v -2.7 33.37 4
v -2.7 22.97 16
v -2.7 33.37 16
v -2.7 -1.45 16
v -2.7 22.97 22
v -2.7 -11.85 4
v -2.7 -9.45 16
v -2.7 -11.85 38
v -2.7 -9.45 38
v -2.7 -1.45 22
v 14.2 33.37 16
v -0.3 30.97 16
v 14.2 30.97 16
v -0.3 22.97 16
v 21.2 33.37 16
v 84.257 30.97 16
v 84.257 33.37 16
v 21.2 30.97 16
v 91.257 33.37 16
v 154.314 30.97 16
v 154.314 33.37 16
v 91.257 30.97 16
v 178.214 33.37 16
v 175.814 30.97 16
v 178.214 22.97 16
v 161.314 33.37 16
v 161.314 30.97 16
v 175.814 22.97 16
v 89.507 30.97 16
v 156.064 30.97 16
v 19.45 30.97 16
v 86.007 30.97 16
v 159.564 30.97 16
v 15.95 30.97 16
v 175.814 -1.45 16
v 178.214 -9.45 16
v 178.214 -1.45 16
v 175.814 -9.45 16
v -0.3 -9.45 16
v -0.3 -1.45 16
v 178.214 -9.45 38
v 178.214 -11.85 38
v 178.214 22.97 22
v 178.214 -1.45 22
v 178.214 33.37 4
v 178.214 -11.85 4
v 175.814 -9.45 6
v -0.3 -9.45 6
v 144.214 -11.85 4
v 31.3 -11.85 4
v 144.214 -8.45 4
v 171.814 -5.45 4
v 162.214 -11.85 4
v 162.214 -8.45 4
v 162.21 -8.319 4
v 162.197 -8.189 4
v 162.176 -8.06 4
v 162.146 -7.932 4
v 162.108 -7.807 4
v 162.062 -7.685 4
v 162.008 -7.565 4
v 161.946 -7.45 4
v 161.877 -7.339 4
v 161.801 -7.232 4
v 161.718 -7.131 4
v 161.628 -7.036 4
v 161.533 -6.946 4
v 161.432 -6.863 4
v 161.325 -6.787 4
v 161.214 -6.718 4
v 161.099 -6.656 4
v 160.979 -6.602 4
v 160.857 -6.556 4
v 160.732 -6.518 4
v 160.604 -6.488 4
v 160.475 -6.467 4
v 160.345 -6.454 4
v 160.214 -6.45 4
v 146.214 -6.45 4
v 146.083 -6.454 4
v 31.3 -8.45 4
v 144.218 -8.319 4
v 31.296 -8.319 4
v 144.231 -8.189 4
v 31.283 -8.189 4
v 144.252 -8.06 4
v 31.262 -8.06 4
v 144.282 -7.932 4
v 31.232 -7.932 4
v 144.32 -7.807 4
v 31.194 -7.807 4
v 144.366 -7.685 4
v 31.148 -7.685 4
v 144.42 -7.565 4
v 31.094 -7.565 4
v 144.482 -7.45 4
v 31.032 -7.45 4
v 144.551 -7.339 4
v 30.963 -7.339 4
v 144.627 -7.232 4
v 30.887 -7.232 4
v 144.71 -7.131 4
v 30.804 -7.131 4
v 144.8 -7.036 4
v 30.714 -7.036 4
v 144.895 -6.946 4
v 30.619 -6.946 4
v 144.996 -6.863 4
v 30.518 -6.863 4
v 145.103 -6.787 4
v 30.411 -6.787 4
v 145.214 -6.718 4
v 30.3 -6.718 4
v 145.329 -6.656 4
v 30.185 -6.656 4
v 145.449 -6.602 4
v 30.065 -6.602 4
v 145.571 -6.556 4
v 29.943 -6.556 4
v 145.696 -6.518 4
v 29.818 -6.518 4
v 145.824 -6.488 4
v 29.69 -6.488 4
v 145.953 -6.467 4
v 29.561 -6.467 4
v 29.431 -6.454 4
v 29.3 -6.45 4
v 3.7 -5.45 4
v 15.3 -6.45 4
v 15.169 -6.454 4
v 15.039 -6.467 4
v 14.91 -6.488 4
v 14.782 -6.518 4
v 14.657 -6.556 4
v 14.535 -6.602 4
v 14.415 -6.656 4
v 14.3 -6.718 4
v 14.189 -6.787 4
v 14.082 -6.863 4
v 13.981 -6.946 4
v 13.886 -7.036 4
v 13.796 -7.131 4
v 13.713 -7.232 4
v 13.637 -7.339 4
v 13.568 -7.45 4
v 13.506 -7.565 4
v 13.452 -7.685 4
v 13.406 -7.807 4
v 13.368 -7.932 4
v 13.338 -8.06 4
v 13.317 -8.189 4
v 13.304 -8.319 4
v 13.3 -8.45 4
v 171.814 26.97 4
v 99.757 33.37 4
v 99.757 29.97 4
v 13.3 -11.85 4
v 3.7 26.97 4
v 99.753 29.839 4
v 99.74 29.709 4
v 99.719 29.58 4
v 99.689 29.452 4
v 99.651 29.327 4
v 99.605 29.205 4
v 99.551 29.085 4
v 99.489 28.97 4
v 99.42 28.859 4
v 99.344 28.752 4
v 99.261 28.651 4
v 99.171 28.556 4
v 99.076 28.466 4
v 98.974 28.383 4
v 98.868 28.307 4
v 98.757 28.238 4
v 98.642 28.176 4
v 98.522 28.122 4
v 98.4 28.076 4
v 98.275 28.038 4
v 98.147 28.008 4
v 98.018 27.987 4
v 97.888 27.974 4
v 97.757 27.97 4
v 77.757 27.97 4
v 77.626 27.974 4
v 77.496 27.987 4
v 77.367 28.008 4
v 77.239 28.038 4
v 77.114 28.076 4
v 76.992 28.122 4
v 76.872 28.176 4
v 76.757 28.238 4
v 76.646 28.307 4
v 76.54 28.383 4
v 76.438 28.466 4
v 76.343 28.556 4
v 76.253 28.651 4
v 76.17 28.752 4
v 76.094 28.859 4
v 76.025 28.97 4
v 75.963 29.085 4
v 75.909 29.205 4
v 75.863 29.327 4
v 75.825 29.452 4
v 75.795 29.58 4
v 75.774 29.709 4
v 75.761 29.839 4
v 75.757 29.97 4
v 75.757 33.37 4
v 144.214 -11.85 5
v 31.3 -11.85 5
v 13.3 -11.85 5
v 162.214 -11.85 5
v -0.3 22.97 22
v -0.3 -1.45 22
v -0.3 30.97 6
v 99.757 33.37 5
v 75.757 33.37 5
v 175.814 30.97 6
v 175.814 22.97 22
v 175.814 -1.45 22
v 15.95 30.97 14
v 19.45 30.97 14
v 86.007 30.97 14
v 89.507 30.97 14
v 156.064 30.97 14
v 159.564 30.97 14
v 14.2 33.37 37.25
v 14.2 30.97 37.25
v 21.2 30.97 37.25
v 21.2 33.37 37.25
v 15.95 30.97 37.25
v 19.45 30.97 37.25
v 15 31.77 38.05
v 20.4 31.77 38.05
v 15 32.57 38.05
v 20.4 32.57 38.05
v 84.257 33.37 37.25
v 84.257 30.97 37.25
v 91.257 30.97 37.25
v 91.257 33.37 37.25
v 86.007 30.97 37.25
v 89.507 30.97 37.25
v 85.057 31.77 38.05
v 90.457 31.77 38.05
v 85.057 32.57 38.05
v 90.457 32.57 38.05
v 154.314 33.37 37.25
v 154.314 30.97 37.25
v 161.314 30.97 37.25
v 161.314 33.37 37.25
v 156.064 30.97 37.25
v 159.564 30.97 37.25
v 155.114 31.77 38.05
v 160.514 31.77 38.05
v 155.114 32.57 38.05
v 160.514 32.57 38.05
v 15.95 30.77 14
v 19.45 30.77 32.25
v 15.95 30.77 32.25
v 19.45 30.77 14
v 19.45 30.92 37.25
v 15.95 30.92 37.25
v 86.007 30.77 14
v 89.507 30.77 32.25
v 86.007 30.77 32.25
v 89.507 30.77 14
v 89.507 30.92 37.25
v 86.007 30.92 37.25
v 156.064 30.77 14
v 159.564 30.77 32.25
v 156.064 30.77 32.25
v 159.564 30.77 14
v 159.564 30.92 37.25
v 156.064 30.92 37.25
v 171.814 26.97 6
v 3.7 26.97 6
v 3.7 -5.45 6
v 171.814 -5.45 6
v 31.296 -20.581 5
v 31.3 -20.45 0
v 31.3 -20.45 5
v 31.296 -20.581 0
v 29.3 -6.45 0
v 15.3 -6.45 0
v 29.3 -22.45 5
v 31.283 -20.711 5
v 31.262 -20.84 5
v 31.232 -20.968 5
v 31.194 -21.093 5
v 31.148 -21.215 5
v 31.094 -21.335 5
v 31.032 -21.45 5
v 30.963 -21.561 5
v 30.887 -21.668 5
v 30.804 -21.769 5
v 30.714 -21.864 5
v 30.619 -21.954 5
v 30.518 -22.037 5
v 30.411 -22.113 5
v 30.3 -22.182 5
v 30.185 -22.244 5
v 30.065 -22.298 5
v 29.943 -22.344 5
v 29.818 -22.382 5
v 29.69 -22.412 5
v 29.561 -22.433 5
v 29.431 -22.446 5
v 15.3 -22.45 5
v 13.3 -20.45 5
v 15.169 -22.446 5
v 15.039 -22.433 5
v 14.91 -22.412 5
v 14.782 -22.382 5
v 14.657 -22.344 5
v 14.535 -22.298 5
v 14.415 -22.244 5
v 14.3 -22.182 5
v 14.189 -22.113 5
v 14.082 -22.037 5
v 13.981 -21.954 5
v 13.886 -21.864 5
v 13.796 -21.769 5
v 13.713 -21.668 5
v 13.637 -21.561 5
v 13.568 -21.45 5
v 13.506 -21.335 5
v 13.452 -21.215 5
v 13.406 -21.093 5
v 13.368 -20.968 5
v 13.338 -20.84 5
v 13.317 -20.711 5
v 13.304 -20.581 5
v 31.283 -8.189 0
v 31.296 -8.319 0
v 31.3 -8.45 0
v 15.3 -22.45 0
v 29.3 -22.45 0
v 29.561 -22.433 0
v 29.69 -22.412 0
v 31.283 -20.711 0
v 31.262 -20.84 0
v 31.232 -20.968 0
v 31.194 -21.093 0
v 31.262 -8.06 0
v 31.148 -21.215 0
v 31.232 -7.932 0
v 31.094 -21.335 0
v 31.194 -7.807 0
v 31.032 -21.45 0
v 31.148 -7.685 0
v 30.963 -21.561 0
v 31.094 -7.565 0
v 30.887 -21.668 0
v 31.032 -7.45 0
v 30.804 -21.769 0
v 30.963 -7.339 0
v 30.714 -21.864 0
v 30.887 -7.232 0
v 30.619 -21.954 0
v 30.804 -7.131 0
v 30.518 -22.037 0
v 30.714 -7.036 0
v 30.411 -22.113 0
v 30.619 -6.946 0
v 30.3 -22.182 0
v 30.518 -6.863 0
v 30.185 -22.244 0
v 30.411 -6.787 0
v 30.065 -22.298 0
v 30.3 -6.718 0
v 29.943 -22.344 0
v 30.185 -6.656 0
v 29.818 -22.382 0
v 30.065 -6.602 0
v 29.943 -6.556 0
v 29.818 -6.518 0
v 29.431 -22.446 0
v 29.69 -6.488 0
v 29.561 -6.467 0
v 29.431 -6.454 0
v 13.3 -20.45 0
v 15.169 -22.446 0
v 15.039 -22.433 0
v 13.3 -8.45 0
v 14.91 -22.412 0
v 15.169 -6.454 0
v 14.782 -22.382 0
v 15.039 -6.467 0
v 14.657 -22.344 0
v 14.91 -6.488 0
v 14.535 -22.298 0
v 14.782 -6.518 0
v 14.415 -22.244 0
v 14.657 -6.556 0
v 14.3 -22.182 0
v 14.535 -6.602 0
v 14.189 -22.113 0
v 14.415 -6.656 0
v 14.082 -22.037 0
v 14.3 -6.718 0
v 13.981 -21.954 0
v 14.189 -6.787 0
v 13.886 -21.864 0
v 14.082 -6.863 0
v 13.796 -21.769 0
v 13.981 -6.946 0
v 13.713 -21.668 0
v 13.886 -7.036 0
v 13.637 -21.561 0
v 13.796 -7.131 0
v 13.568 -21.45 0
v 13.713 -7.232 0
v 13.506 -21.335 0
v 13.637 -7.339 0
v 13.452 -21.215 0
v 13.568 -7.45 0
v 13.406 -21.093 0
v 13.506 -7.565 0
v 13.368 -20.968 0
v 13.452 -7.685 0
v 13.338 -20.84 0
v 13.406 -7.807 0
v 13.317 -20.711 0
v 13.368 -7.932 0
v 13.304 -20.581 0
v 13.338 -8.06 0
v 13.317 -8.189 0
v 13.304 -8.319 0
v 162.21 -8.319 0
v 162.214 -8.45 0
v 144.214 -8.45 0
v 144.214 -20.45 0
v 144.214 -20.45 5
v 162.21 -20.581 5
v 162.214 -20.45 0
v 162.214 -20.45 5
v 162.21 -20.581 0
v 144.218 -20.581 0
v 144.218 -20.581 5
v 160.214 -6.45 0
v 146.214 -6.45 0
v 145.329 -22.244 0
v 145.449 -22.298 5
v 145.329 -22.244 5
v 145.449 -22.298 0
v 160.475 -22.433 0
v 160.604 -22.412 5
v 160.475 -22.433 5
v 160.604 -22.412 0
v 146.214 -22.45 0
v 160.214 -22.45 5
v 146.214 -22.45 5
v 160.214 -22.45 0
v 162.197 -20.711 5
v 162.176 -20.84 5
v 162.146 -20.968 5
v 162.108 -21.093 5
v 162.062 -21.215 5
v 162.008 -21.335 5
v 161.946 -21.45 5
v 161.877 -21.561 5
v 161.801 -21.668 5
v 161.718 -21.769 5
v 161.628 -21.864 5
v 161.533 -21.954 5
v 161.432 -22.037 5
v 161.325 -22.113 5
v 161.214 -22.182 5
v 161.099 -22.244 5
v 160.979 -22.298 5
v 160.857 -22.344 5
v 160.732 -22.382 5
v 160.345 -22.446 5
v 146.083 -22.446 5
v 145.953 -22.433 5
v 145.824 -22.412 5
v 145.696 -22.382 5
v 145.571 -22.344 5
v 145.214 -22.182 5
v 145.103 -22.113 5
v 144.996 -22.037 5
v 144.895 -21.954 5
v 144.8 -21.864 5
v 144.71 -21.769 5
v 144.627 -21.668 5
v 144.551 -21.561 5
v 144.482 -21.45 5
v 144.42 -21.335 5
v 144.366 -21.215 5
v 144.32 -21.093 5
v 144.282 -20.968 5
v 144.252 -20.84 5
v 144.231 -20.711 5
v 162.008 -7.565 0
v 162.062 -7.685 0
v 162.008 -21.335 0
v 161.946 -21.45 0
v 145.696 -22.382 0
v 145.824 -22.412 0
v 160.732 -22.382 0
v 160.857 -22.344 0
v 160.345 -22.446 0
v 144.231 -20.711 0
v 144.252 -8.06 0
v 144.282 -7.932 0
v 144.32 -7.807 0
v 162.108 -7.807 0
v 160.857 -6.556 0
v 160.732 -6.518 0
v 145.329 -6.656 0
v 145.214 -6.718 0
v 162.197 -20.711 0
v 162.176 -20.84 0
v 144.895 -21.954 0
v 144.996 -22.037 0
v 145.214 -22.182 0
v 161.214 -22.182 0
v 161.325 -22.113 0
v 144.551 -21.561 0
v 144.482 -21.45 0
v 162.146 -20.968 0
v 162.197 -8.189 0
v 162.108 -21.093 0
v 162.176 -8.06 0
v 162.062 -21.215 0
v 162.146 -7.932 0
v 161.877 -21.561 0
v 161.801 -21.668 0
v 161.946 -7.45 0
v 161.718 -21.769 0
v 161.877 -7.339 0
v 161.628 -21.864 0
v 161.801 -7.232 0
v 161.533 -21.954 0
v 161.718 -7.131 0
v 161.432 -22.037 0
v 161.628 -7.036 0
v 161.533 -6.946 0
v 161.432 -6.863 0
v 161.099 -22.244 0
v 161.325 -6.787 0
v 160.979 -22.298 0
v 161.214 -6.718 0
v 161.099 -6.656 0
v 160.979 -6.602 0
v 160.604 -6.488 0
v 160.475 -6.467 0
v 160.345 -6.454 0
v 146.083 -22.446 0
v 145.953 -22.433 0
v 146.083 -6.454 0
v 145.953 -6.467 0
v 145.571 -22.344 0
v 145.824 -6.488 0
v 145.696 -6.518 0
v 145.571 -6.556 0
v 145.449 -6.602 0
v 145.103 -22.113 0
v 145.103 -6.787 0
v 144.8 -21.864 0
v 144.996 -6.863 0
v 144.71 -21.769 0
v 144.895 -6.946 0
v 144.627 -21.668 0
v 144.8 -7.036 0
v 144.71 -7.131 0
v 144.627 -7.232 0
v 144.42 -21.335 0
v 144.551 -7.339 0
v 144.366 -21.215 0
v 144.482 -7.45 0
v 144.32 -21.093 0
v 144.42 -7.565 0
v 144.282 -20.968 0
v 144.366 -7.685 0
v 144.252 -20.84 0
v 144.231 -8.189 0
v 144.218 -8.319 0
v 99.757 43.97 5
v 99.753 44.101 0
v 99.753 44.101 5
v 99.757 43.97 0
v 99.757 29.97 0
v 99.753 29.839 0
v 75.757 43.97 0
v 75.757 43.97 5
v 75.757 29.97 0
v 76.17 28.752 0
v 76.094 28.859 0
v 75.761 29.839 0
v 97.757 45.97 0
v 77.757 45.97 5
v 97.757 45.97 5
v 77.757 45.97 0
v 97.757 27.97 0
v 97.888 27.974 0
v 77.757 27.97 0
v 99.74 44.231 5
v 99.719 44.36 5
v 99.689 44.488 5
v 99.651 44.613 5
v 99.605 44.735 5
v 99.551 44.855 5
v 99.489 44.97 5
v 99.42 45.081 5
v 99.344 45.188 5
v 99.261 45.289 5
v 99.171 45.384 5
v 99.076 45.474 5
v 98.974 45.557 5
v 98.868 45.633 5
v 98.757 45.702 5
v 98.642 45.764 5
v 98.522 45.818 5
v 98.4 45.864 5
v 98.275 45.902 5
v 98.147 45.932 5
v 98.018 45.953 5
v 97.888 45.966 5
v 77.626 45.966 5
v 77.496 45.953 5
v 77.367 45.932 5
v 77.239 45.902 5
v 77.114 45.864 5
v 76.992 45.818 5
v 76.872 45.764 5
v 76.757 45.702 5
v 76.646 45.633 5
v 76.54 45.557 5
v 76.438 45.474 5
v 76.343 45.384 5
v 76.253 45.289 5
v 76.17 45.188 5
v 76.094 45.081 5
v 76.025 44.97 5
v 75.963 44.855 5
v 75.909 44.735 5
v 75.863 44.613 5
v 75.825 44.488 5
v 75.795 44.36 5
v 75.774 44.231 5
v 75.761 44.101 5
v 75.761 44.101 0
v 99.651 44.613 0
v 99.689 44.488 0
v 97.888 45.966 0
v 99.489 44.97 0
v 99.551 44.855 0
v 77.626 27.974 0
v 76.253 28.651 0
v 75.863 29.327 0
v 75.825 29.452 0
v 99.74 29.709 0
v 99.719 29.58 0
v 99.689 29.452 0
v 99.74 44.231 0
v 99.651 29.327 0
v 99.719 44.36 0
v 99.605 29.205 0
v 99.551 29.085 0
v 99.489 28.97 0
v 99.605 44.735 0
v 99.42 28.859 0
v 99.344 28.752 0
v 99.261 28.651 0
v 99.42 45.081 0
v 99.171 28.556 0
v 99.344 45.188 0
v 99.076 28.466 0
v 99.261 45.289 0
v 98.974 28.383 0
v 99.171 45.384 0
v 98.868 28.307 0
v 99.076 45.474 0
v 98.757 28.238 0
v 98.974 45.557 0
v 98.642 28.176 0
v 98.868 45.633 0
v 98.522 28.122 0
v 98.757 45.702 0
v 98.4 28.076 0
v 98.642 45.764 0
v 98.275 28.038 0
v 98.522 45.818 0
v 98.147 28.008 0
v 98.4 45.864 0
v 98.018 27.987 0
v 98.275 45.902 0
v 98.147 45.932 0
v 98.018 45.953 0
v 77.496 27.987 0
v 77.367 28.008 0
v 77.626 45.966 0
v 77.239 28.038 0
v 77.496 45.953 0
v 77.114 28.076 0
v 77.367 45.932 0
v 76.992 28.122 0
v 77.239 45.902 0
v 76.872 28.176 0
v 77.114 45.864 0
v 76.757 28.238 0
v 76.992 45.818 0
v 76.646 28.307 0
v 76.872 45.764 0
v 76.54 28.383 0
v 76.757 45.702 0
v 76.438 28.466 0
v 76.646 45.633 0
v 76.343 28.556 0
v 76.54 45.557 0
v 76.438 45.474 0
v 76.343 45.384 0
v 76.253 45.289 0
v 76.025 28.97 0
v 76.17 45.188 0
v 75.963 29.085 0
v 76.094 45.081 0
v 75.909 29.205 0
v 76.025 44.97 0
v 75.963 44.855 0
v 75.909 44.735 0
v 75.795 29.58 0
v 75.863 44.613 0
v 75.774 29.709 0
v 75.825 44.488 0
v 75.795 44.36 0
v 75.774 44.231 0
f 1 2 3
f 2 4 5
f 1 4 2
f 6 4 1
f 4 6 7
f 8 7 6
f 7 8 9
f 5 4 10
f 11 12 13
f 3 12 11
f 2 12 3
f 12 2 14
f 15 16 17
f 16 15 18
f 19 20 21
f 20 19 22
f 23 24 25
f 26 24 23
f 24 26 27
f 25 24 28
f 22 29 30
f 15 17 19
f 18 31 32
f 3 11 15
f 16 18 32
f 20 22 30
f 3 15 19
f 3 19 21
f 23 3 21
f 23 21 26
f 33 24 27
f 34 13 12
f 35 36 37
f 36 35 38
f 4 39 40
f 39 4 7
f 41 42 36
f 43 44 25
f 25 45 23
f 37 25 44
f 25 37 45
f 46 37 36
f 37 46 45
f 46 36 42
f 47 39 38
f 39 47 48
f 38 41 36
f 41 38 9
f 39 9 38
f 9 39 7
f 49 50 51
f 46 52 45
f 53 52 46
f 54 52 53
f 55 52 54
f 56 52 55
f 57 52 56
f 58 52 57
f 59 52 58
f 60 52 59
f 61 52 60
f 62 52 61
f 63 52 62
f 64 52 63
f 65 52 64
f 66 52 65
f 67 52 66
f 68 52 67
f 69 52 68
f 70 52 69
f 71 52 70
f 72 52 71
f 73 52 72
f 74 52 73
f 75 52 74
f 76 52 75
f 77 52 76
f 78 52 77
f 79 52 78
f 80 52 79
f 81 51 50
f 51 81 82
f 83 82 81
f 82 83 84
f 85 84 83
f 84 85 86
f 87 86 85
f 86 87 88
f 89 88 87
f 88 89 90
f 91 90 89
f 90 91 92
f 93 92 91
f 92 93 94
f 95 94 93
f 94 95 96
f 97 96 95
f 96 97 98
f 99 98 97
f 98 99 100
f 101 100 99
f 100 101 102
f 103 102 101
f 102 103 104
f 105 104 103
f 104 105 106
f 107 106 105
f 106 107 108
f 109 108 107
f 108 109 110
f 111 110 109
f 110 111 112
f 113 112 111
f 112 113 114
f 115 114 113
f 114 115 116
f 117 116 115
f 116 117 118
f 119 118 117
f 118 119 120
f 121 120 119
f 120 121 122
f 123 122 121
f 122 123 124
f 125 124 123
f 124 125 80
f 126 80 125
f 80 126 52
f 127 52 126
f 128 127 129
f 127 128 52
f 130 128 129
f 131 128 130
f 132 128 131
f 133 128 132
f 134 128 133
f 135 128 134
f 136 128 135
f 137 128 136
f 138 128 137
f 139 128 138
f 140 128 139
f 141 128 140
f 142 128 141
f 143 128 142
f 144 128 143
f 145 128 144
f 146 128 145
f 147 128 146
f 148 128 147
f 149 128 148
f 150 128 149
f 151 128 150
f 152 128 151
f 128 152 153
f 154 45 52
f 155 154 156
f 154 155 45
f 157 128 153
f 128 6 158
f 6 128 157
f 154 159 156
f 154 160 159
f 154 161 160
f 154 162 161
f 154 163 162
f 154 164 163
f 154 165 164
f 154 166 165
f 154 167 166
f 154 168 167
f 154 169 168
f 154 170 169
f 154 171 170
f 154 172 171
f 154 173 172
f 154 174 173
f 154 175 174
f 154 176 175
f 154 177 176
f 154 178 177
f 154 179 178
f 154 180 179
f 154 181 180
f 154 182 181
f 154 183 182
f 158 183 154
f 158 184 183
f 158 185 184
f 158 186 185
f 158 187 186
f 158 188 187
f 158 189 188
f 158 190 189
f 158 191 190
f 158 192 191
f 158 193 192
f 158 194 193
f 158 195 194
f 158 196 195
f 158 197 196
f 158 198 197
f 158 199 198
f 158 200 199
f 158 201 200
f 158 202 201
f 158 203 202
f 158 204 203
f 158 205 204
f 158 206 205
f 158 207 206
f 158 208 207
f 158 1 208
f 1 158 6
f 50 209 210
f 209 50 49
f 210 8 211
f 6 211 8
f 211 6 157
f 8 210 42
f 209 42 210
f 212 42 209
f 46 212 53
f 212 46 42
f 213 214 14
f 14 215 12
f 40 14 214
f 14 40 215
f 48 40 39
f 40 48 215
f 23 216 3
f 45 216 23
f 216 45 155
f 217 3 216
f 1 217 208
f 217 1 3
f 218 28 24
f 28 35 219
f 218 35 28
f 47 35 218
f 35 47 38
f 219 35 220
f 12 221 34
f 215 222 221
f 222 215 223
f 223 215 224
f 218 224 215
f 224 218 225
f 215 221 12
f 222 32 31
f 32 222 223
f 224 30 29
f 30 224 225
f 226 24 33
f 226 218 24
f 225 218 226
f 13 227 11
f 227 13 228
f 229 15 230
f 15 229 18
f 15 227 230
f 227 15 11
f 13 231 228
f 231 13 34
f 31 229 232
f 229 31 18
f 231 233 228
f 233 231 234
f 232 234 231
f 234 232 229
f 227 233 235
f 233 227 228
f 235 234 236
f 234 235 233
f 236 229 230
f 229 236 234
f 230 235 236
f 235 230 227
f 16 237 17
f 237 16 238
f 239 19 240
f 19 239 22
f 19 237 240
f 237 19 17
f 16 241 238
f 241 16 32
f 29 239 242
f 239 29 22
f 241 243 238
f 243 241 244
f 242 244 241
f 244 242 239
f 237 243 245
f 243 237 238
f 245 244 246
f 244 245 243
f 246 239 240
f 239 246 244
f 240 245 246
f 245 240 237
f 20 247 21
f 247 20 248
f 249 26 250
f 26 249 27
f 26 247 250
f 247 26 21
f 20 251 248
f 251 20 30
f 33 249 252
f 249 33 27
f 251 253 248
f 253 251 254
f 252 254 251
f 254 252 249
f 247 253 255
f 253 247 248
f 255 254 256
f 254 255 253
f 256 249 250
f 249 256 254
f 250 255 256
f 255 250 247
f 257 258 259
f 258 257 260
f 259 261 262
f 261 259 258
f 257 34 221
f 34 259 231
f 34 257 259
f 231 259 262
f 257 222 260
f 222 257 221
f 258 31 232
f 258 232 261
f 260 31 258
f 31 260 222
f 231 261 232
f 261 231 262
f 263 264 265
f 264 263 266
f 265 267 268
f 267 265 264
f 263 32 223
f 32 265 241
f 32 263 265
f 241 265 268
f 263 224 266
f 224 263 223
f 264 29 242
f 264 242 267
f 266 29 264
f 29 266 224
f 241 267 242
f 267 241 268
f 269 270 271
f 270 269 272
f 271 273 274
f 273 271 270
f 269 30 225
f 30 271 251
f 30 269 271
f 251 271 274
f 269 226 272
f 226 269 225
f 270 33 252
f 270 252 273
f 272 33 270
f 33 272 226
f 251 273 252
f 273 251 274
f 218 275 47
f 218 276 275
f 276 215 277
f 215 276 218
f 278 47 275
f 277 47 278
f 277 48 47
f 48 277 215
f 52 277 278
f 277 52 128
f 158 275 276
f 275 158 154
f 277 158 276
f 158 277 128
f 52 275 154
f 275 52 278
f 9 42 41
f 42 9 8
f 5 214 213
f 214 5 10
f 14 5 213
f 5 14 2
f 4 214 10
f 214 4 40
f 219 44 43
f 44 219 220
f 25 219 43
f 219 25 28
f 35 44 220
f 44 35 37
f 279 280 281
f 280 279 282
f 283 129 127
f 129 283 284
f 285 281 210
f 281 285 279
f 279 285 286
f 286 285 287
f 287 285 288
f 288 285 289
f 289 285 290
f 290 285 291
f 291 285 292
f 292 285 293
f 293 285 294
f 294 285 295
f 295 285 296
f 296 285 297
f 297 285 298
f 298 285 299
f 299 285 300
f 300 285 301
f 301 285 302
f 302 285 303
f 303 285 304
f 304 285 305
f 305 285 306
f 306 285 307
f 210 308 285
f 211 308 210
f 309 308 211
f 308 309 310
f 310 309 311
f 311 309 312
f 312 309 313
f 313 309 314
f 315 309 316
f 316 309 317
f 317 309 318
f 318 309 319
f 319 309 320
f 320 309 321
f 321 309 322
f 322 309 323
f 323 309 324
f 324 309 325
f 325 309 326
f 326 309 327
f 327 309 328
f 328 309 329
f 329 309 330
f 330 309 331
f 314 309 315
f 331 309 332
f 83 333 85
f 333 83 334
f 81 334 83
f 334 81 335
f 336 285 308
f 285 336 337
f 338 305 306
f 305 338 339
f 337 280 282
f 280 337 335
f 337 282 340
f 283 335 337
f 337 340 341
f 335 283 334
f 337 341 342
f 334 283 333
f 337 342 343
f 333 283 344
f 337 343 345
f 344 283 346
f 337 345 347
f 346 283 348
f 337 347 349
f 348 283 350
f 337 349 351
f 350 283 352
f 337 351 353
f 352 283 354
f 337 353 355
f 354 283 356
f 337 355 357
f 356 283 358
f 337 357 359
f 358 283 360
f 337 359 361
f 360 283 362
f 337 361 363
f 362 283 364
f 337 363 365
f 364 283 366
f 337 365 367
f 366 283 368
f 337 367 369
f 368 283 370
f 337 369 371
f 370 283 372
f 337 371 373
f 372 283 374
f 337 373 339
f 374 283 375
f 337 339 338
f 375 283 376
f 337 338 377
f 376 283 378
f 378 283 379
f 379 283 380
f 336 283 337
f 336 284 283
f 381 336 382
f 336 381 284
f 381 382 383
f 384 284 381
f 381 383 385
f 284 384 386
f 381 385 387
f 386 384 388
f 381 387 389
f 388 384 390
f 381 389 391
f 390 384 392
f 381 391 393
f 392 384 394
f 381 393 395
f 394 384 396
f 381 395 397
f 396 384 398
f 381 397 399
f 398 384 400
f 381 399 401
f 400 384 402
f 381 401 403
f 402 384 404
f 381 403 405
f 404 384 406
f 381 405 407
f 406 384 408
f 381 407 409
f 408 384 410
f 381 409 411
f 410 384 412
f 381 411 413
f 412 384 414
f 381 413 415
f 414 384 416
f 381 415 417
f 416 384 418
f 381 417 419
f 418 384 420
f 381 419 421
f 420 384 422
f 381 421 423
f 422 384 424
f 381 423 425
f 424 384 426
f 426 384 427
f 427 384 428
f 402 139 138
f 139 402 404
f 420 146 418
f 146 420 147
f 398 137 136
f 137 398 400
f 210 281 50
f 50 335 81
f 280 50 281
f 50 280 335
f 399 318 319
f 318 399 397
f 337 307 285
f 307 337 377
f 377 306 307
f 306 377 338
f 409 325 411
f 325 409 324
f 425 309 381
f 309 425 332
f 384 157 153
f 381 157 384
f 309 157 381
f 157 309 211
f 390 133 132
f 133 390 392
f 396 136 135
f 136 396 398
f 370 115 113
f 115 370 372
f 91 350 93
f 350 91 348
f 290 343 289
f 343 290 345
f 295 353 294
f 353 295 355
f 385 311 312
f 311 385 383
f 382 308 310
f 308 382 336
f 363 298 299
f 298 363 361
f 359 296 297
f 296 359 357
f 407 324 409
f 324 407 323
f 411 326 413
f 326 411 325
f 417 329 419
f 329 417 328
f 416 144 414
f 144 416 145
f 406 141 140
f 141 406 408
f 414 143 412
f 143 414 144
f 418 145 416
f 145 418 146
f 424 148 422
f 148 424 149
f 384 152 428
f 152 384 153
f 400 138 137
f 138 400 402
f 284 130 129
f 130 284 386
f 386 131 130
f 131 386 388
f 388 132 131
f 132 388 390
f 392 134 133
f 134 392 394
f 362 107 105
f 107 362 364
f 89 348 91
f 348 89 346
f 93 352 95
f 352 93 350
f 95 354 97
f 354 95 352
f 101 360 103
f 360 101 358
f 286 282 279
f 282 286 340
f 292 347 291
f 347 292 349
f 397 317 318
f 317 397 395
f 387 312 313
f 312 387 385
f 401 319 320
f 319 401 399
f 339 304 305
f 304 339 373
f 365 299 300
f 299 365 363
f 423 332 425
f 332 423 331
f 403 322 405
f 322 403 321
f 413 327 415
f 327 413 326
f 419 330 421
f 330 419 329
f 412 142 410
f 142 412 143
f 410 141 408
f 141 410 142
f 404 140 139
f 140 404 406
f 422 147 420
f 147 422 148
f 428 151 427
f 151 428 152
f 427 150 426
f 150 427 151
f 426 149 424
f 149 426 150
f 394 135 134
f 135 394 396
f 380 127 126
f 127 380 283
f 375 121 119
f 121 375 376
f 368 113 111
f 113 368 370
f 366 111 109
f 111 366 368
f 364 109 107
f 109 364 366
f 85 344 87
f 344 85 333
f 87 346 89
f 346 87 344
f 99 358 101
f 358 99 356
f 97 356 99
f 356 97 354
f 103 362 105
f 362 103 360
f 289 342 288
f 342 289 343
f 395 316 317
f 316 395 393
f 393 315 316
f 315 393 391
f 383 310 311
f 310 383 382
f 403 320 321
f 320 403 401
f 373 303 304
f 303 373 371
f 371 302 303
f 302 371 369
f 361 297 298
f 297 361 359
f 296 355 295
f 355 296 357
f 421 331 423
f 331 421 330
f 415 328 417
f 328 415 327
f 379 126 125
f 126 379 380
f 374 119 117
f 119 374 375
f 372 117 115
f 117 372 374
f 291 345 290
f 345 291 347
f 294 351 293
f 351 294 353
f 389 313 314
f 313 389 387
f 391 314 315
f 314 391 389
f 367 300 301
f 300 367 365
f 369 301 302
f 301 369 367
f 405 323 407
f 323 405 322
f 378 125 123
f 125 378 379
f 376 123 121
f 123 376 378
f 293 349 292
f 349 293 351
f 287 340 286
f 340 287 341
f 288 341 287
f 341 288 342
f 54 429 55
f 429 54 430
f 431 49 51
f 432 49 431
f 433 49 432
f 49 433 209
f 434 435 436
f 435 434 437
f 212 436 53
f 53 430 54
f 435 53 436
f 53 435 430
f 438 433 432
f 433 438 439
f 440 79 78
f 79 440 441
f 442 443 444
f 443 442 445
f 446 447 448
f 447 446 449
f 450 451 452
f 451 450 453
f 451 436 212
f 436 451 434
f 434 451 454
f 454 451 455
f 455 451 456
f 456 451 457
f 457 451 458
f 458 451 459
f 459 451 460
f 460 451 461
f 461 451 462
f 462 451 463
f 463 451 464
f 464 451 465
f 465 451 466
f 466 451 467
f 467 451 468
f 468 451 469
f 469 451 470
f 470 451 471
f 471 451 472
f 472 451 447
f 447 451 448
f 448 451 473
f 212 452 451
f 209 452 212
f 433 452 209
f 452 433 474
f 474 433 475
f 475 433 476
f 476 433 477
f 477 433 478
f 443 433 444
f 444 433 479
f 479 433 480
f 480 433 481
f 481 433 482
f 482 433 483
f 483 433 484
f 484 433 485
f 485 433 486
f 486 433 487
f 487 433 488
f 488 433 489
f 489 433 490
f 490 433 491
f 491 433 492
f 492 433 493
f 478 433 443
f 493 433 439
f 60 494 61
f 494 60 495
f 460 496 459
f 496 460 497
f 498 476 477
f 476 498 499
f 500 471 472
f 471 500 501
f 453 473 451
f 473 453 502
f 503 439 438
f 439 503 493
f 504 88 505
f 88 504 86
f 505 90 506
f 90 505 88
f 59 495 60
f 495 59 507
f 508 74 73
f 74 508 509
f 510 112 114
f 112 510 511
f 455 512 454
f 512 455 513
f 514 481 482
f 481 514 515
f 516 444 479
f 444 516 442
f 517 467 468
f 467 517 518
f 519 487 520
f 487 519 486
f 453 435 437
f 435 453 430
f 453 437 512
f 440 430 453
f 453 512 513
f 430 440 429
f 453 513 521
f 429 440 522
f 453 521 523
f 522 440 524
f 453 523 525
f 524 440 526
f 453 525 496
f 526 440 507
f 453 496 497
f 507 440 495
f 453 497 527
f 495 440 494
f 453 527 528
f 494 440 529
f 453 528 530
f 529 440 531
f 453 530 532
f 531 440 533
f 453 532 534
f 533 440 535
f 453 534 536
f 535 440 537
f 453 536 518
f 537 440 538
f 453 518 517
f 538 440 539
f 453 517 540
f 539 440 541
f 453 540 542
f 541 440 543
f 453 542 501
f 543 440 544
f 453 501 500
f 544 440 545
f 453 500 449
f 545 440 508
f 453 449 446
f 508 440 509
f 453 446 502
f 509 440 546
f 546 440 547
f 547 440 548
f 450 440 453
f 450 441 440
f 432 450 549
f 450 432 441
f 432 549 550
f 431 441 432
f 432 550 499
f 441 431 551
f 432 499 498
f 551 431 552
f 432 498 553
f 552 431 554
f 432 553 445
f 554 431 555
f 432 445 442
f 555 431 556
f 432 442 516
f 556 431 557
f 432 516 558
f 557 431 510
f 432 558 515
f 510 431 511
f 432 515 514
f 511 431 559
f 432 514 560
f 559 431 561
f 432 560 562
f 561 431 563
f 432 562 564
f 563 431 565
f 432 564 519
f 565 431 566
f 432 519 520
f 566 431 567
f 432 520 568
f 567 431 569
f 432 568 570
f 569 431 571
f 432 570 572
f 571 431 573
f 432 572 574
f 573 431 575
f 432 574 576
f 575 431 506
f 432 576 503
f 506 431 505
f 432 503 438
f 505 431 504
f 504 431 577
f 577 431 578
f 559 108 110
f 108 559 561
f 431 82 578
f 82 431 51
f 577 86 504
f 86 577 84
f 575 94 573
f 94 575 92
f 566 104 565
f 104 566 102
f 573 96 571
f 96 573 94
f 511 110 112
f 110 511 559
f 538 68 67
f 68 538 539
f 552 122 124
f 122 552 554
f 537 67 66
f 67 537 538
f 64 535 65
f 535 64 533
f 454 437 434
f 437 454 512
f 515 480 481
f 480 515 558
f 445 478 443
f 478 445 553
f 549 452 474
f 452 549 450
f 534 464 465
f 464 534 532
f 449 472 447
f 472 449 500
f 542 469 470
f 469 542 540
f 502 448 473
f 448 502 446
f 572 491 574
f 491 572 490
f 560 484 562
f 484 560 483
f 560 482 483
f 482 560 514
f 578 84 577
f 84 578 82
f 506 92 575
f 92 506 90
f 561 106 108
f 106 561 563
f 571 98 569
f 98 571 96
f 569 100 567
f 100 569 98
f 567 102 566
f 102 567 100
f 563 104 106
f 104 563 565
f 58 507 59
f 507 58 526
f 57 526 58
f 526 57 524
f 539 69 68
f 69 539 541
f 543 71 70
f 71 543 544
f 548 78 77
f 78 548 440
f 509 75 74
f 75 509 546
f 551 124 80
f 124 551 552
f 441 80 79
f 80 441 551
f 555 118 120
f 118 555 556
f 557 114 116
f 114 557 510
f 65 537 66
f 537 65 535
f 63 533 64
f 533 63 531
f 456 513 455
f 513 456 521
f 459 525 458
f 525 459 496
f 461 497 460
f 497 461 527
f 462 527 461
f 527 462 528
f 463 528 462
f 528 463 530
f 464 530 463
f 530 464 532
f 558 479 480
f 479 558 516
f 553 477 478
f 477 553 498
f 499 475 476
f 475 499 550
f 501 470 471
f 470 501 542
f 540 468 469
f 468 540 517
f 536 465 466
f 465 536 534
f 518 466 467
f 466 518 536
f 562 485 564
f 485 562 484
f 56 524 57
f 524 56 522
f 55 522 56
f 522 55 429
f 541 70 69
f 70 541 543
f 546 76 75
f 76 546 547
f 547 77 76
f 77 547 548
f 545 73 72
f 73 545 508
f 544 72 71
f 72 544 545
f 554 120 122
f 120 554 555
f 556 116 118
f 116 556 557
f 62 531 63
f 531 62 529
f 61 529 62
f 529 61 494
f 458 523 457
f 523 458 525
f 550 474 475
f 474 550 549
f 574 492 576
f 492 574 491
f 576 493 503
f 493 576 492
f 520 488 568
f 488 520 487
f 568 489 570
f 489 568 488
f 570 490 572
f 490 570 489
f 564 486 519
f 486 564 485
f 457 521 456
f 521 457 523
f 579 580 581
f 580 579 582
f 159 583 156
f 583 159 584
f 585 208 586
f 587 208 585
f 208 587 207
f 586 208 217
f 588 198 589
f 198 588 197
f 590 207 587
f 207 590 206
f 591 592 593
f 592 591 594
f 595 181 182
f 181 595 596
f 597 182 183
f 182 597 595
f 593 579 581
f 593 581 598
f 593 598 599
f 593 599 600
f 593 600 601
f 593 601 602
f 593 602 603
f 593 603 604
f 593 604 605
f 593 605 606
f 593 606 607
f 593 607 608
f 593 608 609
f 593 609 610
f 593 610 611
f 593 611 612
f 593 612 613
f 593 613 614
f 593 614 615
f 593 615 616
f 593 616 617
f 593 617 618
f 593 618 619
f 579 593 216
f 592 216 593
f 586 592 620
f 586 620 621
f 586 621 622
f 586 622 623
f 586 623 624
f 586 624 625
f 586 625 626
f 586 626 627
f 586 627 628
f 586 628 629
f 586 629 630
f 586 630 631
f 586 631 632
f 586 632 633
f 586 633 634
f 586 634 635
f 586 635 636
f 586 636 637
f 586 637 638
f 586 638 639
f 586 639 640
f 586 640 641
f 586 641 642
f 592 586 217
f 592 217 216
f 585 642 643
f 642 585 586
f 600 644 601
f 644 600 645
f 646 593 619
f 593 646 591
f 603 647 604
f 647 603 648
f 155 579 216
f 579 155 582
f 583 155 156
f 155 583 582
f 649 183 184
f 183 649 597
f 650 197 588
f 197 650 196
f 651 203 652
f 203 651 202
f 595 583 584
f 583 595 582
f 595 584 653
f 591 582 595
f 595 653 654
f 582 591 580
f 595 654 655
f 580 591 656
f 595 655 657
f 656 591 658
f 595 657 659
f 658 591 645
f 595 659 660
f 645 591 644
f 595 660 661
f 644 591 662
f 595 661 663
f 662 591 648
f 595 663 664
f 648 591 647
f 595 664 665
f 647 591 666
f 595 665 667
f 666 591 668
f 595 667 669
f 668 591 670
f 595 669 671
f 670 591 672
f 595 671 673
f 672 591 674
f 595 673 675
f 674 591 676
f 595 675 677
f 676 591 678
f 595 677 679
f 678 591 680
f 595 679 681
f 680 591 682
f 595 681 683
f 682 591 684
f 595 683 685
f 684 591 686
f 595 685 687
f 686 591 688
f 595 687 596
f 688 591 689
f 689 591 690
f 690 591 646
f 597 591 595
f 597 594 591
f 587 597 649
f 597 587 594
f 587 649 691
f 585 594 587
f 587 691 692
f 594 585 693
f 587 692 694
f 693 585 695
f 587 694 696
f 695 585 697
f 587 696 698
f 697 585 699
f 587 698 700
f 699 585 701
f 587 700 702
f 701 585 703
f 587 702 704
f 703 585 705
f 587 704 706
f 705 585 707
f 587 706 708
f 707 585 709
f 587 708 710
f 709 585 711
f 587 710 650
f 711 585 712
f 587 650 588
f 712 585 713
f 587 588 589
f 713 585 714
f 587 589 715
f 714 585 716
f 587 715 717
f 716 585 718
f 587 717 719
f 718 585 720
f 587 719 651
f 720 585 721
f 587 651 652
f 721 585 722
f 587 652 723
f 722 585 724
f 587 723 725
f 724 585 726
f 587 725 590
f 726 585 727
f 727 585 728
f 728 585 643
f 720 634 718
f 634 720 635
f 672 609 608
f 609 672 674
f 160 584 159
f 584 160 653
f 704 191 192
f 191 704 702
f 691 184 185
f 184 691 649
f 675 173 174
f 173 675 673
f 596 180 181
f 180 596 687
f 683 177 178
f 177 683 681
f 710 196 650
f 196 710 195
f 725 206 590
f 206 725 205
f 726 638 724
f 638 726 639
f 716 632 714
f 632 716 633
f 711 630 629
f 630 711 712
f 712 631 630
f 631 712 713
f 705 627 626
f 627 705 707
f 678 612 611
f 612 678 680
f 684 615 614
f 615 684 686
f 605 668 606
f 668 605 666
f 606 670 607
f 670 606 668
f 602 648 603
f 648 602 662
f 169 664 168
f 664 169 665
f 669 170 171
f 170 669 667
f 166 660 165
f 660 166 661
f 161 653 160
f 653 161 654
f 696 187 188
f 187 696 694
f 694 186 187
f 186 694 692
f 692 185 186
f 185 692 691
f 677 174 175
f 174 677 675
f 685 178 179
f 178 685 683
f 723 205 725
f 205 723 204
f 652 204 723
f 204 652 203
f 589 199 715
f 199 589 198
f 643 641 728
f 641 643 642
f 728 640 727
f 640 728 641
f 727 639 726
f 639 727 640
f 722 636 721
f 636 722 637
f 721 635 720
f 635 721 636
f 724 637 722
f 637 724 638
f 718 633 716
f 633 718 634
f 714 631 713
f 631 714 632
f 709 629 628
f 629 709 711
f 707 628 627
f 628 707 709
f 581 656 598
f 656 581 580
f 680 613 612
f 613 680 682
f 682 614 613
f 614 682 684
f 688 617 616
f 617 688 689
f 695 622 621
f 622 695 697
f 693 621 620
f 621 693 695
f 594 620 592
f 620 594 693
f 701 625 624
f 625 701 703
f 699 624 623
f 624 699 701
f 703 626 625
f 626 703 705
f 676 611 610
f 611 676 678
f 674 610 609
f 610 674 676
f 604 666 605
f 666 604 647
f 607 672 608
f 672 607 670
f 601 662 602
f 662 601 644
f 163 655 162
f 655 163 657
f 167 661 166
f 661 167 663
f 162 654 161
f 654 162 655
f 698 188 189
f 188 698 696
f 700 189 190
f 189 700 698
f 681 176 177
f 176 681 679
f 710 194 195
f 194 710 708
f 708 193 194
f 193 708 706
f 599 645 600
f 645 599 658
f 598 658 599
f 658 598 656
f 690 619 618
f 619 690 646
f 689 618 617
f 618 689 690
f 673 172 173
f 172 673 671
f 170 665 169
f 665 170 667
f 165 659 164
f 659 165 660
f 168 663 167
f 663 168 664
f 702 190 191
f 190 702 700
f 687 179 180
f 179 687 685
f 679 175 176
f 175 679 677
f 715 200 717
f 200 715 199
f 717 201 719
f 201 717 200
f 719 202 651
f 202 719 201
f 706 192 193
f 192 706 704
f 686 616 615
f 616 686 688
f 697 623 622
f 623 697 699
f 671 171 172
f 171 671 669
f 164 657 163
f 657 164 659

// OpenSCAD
// DOUBLE TAKE FRAMES — CANONICAL FRAME STAND
// DTF_RELEASE: 4.0.0
// Version: 4.0.0
// Based on canonical frame-stand-v3.0.0.scad.
// Status: CANONICAL
//
// Lowers the passive overflow crest from Z=9 mm to Z=7 mm, matching the
// intended low red-line spout rather than using most of the stand's depth as
// fill capacity.  The cassette seat remains at Z=11 mm, so a full 4 mm wall
// band is hydraulically incapable of becoming submerged during upright fill.
// This safety-first level requires about 5 mm of diffuser projection below the
// cassette to retain 1 mm of working immersion.
//
// Makes the rear fill spout a passive overflow weir: its complete outer rim
// ends at the design waterline below the cassette resting plane.
// The spout-to-basin opening stops at that same elevation, leaving a continuous
// solid dry bulkhead above it.  Excess fill therefore exits through the low
// spout before the water surface can reach the cassette or cardboard backing.
//
// With reservoir=true, raises the cassette rest by 5 mm above a floor-grown basin,
// puts the unique low sump directly under the cassette diffuser opening, and
// aligns the rear filling spout to that same diffuser datum.  Every wet-side
// floor rises gently away from the sump, including the complete spout floor.
// Rounded interior transitions prioritize printability and water tightness.
// With reservoir=false, produces the unchanged canonical v3.0.0 stand geometry.
//
// Original canonical release history follows.
// Released: 2026-09-24
// Versioning: Semantic Versioning 2.0.0 (https://semver.org/)
// Changes in 3.0.0:
// - Carried forward unchanged for the clipless keyed wall-rig and latch release.
// Changes in 2.0.4:
// - Carried forward unchanged for the coordinated capstan and clock-string-guide release.
// Changes in 2.0.3:
// - Carried forward unchanged for the corrected prepared-project packaging.
// Changes in 2.0.2:
// - Carried forward unchanged for the native 3MF packaging hotfix.
// Changes in 2.0.1:
// - Carried forward unchanged for the prepared-project packaging correction.
// Changes in 2.0.0:
// - Carried forward without geometry changes for the coordinated 2.0.0 release.
// Full release notes: https://doubletakeframes.com/build/#design-release
//
$fn = 96;
eps = 0.05;

// Variant selector. The reservoir experiment remains available but off by
// default so the established stand is the neutral/standard configuration.
reservoir = false;

// =========================================================
// DETACHABLE FRONT BAND + SIDE WALLS + REAR POSTS + FEETS
// Continuous low rail all around.
// Side walls sit on rail but do not connect to front/back above rail.
// Non-friction resting fit.
//
// Corrected:
// - Feet overlap collar/body in Z by foot_body_z_overlap, not just eps.
// - Each foot is shifted a few mm inward under the basket while keeping
//   the original front/rear foot depth.
// =========================================================

inch = 25.4;

// CASSETTE REFERENCE VALUES
cassette_w = 6.91 * inch;

bottom_t    = 3.0;
wall_t      = 3.0;
wall_offset = 0.0;

front_frame_t    = 1.2;
acrylic_gap      = 1.0;
spacer_thickness = 7.0;

front_buildout_total = front_frame_t + acrylic_gap + spacer_thickness;
front_buildout_y0    = wall_offset - front_buildout_total;

roller_r    = 0.75 * inch;
glide_t     = 2.0;
fang_embed  = 0.6;
rail_back_y = 8.0;
roller_cy   = wall_offset + wall_t;

glide_y  = roller_cy + roller_r - glide_t - fang_embed;
bottom_d = glide_y + glide_t + rail_back_y;

backing_board_extra_y = 1/20 * inch;

cassette_x0 = 0;
cassette_x1 = cassette_w;
cassette_y0 = front_buildout_y0;
cassette_y1 = bottom_d + backing_board_extra_y;

// FIT / GEOMETRY
clear_x = 0.3;
clear_y = 0.25;

collar_t = 2.4;

dry_foot_h = 5.0;
// The wet stand needs positive separation between the operating water level
// and both the cassette floor and cardboard backing.  Extending the feet and
// all cassette-supporting structure together preserves the established fit
// while gaining the full requested 5 mm of vertical safety room.
wet_cassette_rise_h = reservoir ? 5.0 : 0.0;
foot_h = dry_foot_h + wet_cassette_rise_h;
foot_body_z_overlap = 1.0;
collar_z0 = foot_h - foot_body_z_overlap;

collar_h = 34.0;
side_wall_h = 18.0;
inner_x0 = cassette_x0 - clear_x;
inner_x1 = cassette_x1 + clear_x;
inner_y0 = cassette_y0 - clear_y;
inner_y1 = cassette_y1 + clear_y;

outer_x0 = inner_x0 - collar_t;
outer_x1 = inner_x1 + collar_t;
outer_y0 = inner_y0 - collar_t;
outer_y1 = inner_y1 + collar_t;

// RESTING LEDGE
rest_lip_t = 4.0;
rest_lip_h = 2.0;

// WATER BASIN
// Four nominal 0.6 mm lines/layers provide a conservative watertight shell.
// The exterior remains flat on the print bed.  Only the inside floor slopes:
// a broad shallow sump is the unique low point and all perimeter areas climb
// by less than 1 mm, enough to drain without creating steep wet-side ledges.
water_pool_floor_t = 2.4;
water_pool_perimeter_floor_z = water_pool_floor_t + 0.8;
// Shared cassette datum from the pending main frame: the diffuser/wick hole
// reuses integrated_drain_x/y.  Keeping the formula here prevents the stand
// from silently drifting when viewed independently.
water_pool_sump_x = 11.4;
water_pool_sump_y = (wall_offset + (bottom_d - 8.0))/2 + 3.0;
water_pool_sump_half_x = 5.2;
water_pool_sump_half_y = 5.4;
// Carry the basin wall all the way under the existing 4 mm resting ledge so
// that ledge is supported from the print floor rather than becoming a wet-side
// cantilever.
water_pool_wall_t = collar_t + rest_lip_t;
water_pool_top_z = collar_z0 + rest_lip_h;
water_pool_inner_fillet_r = 2.4;
water_pool_curve_fn = 48;
// A 5 mm diffuser tail reaches 1 mm into the nominal water at this level while
// the water remains a definite 4 mm below the cassette resting plane.  The
// rear spout rim is an open overflow at exactly this datum, making the upper
// 4 mm of the basin wall a physically enforced dry bulkhead rather than spare
// capacity that can be accidentally filled.
water_pool_design_freeboard_z = 4.0;
water_pool_design_fill_z = water_pool_top_z-water_pool_design_freeboard_z;
water_pool_dry_bulkhead_z0 = water_pool_design_fill_z;
water_pool_dry_bulkhead_h = water_pool_top_z-water_pool_dry_bulkhead_z0;
water_pool_min_diffuser_immersion_z = 1.0;
water_pool_required_diffuser_tail_z =
    water_pool_design_freeboard_z+water_pool_min_diffuser_immersion_z;

// LOW RAIL
low_rail_h = 12.0;

// SIDE WALLS
side_wall_gap_front = 8.0;
side_wall_gap_rear  = 8.0;
side_wall_t = collar_t;

// REAR POSTS
rear_post_w = 7.0;
rear_post_t = collar_t;
post_bevel = 0.8;

// Localized friction take-up on the three rear backing-board capture posts.
// These project into the existing Y clearance without moving the posts or
// tightening the stand's overall envelope. The upper ramp eases insertion.
rear_post_friction_pad_d = 0.20;
rear_post_friction_pad_w = 3.5;
rear_post_friction_pad_z0 = collar_z0 + low_rail_h - 2.0;
rear_post_friction_pad_z1 = collar_z0 + collar_h - post_bevel;
rear_post_friction_ramp_h = 5.0;

// REAR WATER-FILL SPOUT
// Centered directly behind the diffuser hole.  The former convenience
// location between the center and right posts is intentionally retired.
water_spout_cx = water_pool_sump_x;
water_spout_outer_w_x = 18.0;
water_spout_outer_x0 = water_spout_cx-water_spout_outer_w_x/2;
water_spout_outer_x1 = water_spout_cx+water_spout_outer_w_x/2;
water_spout_projection_y = 20.0;
// Only a small fused overlap enters the existing rear wall; the tall pour well
// remains behind the cassette envelope rather than occupying its rear corner.
water_spout_wall_overlap_y = 0.6;
water_spout_outer_y0 = outer_y1-water_spout_wall_overlap_y;
water_spout_outer_y1 = outer_y1+water_spout_projection_y;
// The complete exposed spout rim is the passive overflow crest.  It must be
// lower than every cassette-supporting surface so overfill leaves the stand.
water_spout_top_z = water_pool_design_fill_z;
water_spout_wall_t = 2.4;
water_spout_near_floor_z = water_pool_perimeter_floor_z+0.2;
water_spout_far_floor_z = water_spout_near_floor_z+1.0;
water_spout_inner_fillet_r = 2.4;
water_spout_port_w_x = 10.0;

// Moving only this post is preferable to offsetting the hydraulic path.  It
// remains well inboard of the side wall and leaves a printable gap around the
// directly aligned spout.
rear_left_post_x = max(
    inner_x0+18.0,
    reservoir
        ? water_spout_outer_x1+rear_post_w/2+3.0
        : inner_x0+18.0
);
rear_center_post_x = (inner_x0+inner_x1)/2;
rear_right_post_x = inner_x1-18.0;

// FEET
front_foot_proj = 16.0;
rear_foot_proj  = 18.0;

front_foot_w = 18.0;
rear_foot_w  = 24.0;

front_foot_inset_x = 16.0;
foot_round = 2.0;

// How far the inner edge of each foot reaches under the basket.
// Original effectively stopped ~0.6 mm short of the inner edge.
foot_y_overlap = 3.0;

// HELPERS
module rounded_rect_prism(x0, x1, y0, y1, z0, z1, r=2) {
    hull() {
        translate([x0+r, y0+r, z0]) cylinder(r=r, h=z1-z0);
        translate([x1-r, y0+r, z0]) cylinder(r=r, h=z1-z0);
        translate([x0+r, y1-r, z0]) cylinder(r=r, h=z1-z0);
        translate([x1-r, y1-r, z0]) cylinder(r=r, h=z1-z0);
    }
}

module beveled_post(xsz, ysz, h, b) {
    bx = min(b, xsz/2 - eps);
    by = min(b, ysz/2 - eps);

    union() {
        cube([xsz, ysz, h - b]);

        translate([0, 0, h - b])
        hull() {
            cube([xsz, ysz, eps]);

            translate([bx, by, b])
                cube([
                    max(eps, xsz - 2*bx),
                    max(eps, ysz - 2*by),
                    eps
                ]);
        }
    }
}

// FLOOR-GROWN WATER BASIN
// Start with one continuous outer block from the print bed to the frame-resting
// plane, then remove a rounded, shallowly pitched cavity from above.  A low
// center pad beneath the diffuser and four higher perimeter columns form the
// drainage envelope.  Minkowski rounding then makes the floor/wall joints
// continuous and curvilinear without changing the flat printable underside.
module water_pool_sloped_cavity_core(
    x0,x1,y0,y1,z1,r
) {
    sump_core_half_x = max(eps,water_pool_sump_half_x-r);
    sump_core_half_y = max(eps,water_pool_sump_half_y-r);

    hull() {
        // Higher perimeter datums: the complete boundary drains inward.
        for(x=[x0+r,x1-r], y=[y0+r,y1-r])
            translate([x-eps/2,y-eps/2,water_pool_perimeter_floor_z+r])
                cube([eps,eps,z1-water_pool_perimeter_floor_z+2*eps]);

        // The only low area is a compact pad centered under the diffuser.
        translate([
            water_pool_sump_x-sump_core_half_x,
            water_pool_sump_y-sump_core_half_y,
            water_pool_floor_t+r
        ])
            cube([
                2*sump_core_half_x,
                2*sump_core_half_y,
                z1-water_pool_floor_t+2*eps
            ]);
    }
}

module water_pool_shell() {
    cavity_x0 = outer_x0 + water_pool_wall_t;
    cavity_x1 = outer_x1 - water_pool_wall_t;
    cavity_y0 = outer_y0 + water_pool_wall_t;
    cavity_y1 = outer_y1 - water_pool_wall_t;
    cavity_w = cavity_x1 - cavity_x0;
    cavity_d = cavity_y1 - cavity_y0;
    cavity_h = water_pool_top_z - water_pool_floor_t;
    r = water_pool_inner_fillet_r;

    assert(water_pool_floor_t >= 2.4-eps,
           "water basin floor is thinner than four 0.6 mm layers");
    assert(water_pool_wall_t >= 2.4-eps,
           "water basin wall is thinner than four 0.6 mm lines");
    assert(cavity_w > 2*r && cavity_d > 2*r,
           "water basin fillet consumes the interior cavity");
    assert(cavity_h > 0,
           "water basin has no usable depth above its floor");
    assert(water_pool_sump_x-water_pool_sump_half_x
               >= cavity_x0+r-eps
           && water_pool_sump_x+water_pool_sump_half_x
               <= cavity_x1-r+eps,
           "diffuser sump reaches the basin X wall");
    assert(water_pool_sump_y-water_pool_sump_half_y
               >= cavity_y0+r-eps
           && water_pool_sump_y+water_pool_sump_half_y
               <= cavity_y1-r+eps,
           "diffuser sump reaches the basin Y wall");
    assert(water_pool_design_fill_z
               <= water_pool_top_z-water_pool_design_freeboard_z+eps,
           "water design level lost its cassette-floor freeboard");
    assert(water_pool_dry_bulkhead_h >= 4.0-eps,
           "enforced dry bulkhead is less than 4 mm tall");
    assert(water_pool_design_fill_z
               >= water_pool_top_z-water_pool_required_diffuser_tail_z
                  +water_pool_min_diffuser_immersion_z-eps,
           "specified diffuser tail no longer reaches the safe waterline");

    difference() {
        translate([outer_x0, outer_y0, 0])
            cube([
                outer_x1 - outer_x0,
                outer_y1 - outer_y0,
                water_pool_top_z
            ]);

        minkowski() {
            water_pool_sloped_cavity_core(
                cavity_x0,cavity_x1,
                cavity_y0,cavity_y1,
                water_pool_top_z+eps,r
            );
            sphere(r=r,$fn=water_pool_curve_fn);
        }
    }
}

module water_spout_sloped_cavity_core(
    x0,x1,y0,y1,z1,r
) {
    core_w = x1-x0-2*r;

    hull() {
        // Near edge is lower; the main basin then continues down to the sump.
        translate([x0+r,y0+r,water_spout_near_floor_z+r])
            cube([
                core_w,eps,
                z1-water_spout_near_floor_z+2*eps
            ]);
        // The pouring end is deliberately the highest point in the wet path.
        translate([x0+r,y1-r-eps,water_spout_far_floor_z+r])
            cube([
                core_w,eps,
                z1-water_spout_far_floor_z+2*eps
            ]);
    }
}

module rear_water_spout_shell() {
    cavity_x0 = water_spout_outer_x0+water_spout_wall_t;
    cavity_x1 = water_spout_outer_x1-water_spout_wall_t;
    cavity_y0 = water_spout_outer_y0+water_spout_wall_t;
    cavity_y1 = water_spout_outer_y1-water_spout_wall_t;
    cavity_w = cavity_x1-cavity_x0;
    cavity_d = cavity_y1-cavity_y0;
    r = water_spout_inner_fillet_r;

    assert(cavity_w > 2*r && cavity_d > 2*r,
           "rear water spout fillet consumes its pour opening");
    assert(water_spout_outer_x0 >= outer_x0-eps,
           "diffuser-aligned rear spout reaches beyond the stand side");
    assert(water_spout_outer_x1
               <= rear_left_post_x-rear_post_w/2-3.0+eps,
           "diffuser-aligned rear spout crowds the relocated left post");
    assert(water_spout_far_floor_z < water_pool_design_fill_z-eps,
           "spout floor reaches the nominal water level");
    assert(abs(water_spout_top_z-water_pool_design_fill_z) < eps,
           "spout rim no longer enforces the design waterline");
    assert(water_pool_top_z-water_spout_top_z
               >= water_pool_design_freeboard_z-eps,
           "spout overflow can wet the cassette-side bulkhead");

    difference() {
        translate([
            water_spout_outer_x0,
            water_spout_outer_y0,
            0
        ])
            cube([
                water_spout_outer_x1-water_spout_outer_x0,
                water_spout_outer_y1-water_spout_outer_y0,
                water_spout_top_z
            ]);

        // Rounded open-top pour well.  Its floor rises toward the pouring end,
        // so no local low spot remains behind the diffuser-aligned channel.
        minkowski() {
            water_spout_sloped_cavity_core(
                cavity_x0,cavity_x1,
                cavity_y0,cavity_y1,
                water_spout_top_z+eps,r
            );
            sphere(r=r,$fn=water_pool_curve_fn);
        }
    }
}

module water_spout_yz_extrude_x(x0,x1) {
    multmatrix([
        [0,0,1,x0],
        [1,0,0,0],
        [0,1,0,0],
        [0,0,0,1]
    ])
        linear_extrude(height=x1-x0)
            children();
}

module rear_water_spout_connection_void() {
    // Open only through the wet zone, terminating at the low overflow crest.
    // The rear wall from that crest to the cassette seat remains continuous,
    // forming the dry Z-face that accidental overfill cannot reach.
    port_x0 = water_spout_cx-water_spout_port_w_x/2;
    port_x1 = water_spout_cx+water_spout_port_w_x/2;
    port_y0 = outer_y1-water_pool_wall_t-eps;
    port_y1 = port_y0
        +water_pool_wall_t+water_spout_wall_t
        +water_spout_inner_fillet_r+2*eps;

    // The connection continues the same downhill path: high in the spout,
    // lower at the basin perimeter, then lower again at the diffuser sump.
    water_spout_yz_extrude_x(port_x0,port_x1)
        polygon(points=[
            [port_y0,water_pool_perimeter_floor_z-eps],
            [port_y1,water_spout_near_floor_z-eps],
            [port_y1,water_spout_top_z+eps],
            [port_y0,water_spout_top_z+eps]
        ]);
}

// FRONT BAND
module front_band() {
    translate([outer_x0, outer_y0, collar_z0])
        cube([
            outer_x1 - outer_x0,
            collar_t,
            collar_h
        ]);
}

// CONTINUOUS LOW RAIL
module front_low_rail() {
    translate([outer_x0, outer_y0, collar_z0])
        cube([outer_x1 - outer_x0, collar_t, low_rail_h]);
}

module left_low_rail() {
    translate([outer_x0, outer_y0, collar_z0])
        cube([collar_t, outer_y1 - outer_y0, low_rail_h]);
}

module right_low_rail() {
    translate([outer_x1 - collar_t, outer_y0, collar_z0])
        cube([collar_t, outer_y1 - outer_y0, low_rail_h]);
}

module rear_low_rail() {
    translate([outer_x0, outer_y1 - collar_t, collar_z0])
        cube([outer_x1 - outer_x0, collar_t, low_rail_h]);
}

module low_rails() {
    // front rail overlaps lower part of front band; harmless and strengthens base
    front_low_rail();
    left_low_rail();
    right_low_rail();
    rear_low_rail();
}

// SIDE WALLS
module left_side_wall() {
    y0 = inner_y0 + side_wall_gap_front;
    y1 = inner_y1 - side_wall_gap_rear;

    translate([outer_x0, y0, collar_z0])
        cube([
            side_wall_t,
            y1 - y0,
            side_wall_h
        ]);
}

module right_side_wall() {
    y0 = inner_y0 + side_wall_gap_front;
    y1 = inner_y1 - side_wall_gap_rear;

    translate([inner_x1, y0, collar_z0])
        cube([
            side_wall_t,
            y1 - y0,
            side_wall_h
        ]);
}

// REAR POSTS
module rear_post(x_center) {
    translate([x_center - rear_post_w/2, inner_y1, collar_z0])
        beveled_post(rear_post_w, rear_post_t, collar_h, post_bevel);
}

module rear_post_friction_pad(x_center) {
    pad_x0 = x_center - rear_post_friction_pad_w/2;
    full_pad_y0 = inner_y1 - rear_post_friction_pad_d;
    ramp_z0 = rear_post_friction_pad_z1 - rear_post_friction_ramp_h;

    hull() {
        translate([pad_x0, full_pad_y0, rear_post_friction_pad_z0])
            cube([rear_post_friction_pad_w, rear_post_friction_pad_d + eps, eps]);
        translate([pad_x0, full_pad_y0, ramp_z0])
            cube([rear_post_friction_pad_w, rear_post_friction_pad_d + eps, eps]);
        translate([pad_x0, inner_y1 - eps, rear_post_friction_pad_z1])
            cube([rear_post_friction_pad_w, 2*eps, eps]);
    }
}

module rear_posts() {
    rear_post(rear_left_post_x);
    rear_post(rear_center_post_x);
    rear_post(rear_right_post_x);

    rear_post_friction_pad(rear_left_post_x);
    rear_post_friction_pad(rear_center_post_x);
    rear_post_friction_pad(rear_right_post_x);
}

// BOTTOM RESTING LEDGE
module bottom_rest_lip() {
    translate([inner_x0, inner_y0, collar_z0])
        cube([inner_x1 - inner_x0, rest_lip_t, rest_lip_h]);

    translate([inner_x0, inner_y1 - rest_lip_t, collar_z0])
        cube([inner_x1 - inner_x0, rest_lip_t, rest_lip_h]);

    translate([inner_x0, inner_y0, collar_z0])
        cube([rest_lip_t, inner_y1 - inner_y0, rest_lip_h]);

    translate([inner_x1 - rest_lip_t, inner_y0, collar_z0])
        cube([rest_lip_t, inner_y1 - inner_y0, rest_lip_h]);
}

// FEET
module front_left_foot() {
    x0 = outer_x0 + front_foot_inset_x;
    x1 = x0 + front_foot_w;

    // Same foot depth as original, shifted inward for a few mm of underlap.
    y1 = inner_y0 + foot_y_overlap;
    y0 = y1 - front_foot_proj;

    rounded_rect_prism(x0, x1, y0, y1, 0, foot_h, foot_round);
}

module front_right_foot() {
    x1 = outer_x1 - front_foot_inset_x;
    x0 = x1 - front_foot_w;

    // Same foot depth as original, shifted inward for a few mm of underlap.
    y1 = inner_y0 + foot_y_overlap;
    y0 = y1 - front_foot_proj;

    rounded_rect_prism(x0, x1, y0, y1, 0, foot_h, foot_round);
}

module rear_center_foot() {
    x0 = (outer_x0 + outer_x1)/2 - rear_foot_w/2;
    x1 = x0 + rear_foot_w;

    // Same foot depth as original, shifted inward for a few mm of underlap.
    y0 = inner_y1 - foot_y_overlap;
    y1 = y0 + rear_foot_proj;

    rounded_rect_prism(x0, x1, y0, y1, 0, foot_h, foot_round);
}

// FINAL
difference() {
    union() {
        if(reservoir) {
            water_pool_shell();
            rear_water_spout_shell();
        }

        front_band();
        low_rails();

        left_side_wall();
        right_side_wall();
        rear_posts();

        bottom_rest_lip();

        front_left_foot();
        front_right_foot();
        rear_center_foot();
    }

    if(reservoir)
        rear_water_spout_connection_void();
}
